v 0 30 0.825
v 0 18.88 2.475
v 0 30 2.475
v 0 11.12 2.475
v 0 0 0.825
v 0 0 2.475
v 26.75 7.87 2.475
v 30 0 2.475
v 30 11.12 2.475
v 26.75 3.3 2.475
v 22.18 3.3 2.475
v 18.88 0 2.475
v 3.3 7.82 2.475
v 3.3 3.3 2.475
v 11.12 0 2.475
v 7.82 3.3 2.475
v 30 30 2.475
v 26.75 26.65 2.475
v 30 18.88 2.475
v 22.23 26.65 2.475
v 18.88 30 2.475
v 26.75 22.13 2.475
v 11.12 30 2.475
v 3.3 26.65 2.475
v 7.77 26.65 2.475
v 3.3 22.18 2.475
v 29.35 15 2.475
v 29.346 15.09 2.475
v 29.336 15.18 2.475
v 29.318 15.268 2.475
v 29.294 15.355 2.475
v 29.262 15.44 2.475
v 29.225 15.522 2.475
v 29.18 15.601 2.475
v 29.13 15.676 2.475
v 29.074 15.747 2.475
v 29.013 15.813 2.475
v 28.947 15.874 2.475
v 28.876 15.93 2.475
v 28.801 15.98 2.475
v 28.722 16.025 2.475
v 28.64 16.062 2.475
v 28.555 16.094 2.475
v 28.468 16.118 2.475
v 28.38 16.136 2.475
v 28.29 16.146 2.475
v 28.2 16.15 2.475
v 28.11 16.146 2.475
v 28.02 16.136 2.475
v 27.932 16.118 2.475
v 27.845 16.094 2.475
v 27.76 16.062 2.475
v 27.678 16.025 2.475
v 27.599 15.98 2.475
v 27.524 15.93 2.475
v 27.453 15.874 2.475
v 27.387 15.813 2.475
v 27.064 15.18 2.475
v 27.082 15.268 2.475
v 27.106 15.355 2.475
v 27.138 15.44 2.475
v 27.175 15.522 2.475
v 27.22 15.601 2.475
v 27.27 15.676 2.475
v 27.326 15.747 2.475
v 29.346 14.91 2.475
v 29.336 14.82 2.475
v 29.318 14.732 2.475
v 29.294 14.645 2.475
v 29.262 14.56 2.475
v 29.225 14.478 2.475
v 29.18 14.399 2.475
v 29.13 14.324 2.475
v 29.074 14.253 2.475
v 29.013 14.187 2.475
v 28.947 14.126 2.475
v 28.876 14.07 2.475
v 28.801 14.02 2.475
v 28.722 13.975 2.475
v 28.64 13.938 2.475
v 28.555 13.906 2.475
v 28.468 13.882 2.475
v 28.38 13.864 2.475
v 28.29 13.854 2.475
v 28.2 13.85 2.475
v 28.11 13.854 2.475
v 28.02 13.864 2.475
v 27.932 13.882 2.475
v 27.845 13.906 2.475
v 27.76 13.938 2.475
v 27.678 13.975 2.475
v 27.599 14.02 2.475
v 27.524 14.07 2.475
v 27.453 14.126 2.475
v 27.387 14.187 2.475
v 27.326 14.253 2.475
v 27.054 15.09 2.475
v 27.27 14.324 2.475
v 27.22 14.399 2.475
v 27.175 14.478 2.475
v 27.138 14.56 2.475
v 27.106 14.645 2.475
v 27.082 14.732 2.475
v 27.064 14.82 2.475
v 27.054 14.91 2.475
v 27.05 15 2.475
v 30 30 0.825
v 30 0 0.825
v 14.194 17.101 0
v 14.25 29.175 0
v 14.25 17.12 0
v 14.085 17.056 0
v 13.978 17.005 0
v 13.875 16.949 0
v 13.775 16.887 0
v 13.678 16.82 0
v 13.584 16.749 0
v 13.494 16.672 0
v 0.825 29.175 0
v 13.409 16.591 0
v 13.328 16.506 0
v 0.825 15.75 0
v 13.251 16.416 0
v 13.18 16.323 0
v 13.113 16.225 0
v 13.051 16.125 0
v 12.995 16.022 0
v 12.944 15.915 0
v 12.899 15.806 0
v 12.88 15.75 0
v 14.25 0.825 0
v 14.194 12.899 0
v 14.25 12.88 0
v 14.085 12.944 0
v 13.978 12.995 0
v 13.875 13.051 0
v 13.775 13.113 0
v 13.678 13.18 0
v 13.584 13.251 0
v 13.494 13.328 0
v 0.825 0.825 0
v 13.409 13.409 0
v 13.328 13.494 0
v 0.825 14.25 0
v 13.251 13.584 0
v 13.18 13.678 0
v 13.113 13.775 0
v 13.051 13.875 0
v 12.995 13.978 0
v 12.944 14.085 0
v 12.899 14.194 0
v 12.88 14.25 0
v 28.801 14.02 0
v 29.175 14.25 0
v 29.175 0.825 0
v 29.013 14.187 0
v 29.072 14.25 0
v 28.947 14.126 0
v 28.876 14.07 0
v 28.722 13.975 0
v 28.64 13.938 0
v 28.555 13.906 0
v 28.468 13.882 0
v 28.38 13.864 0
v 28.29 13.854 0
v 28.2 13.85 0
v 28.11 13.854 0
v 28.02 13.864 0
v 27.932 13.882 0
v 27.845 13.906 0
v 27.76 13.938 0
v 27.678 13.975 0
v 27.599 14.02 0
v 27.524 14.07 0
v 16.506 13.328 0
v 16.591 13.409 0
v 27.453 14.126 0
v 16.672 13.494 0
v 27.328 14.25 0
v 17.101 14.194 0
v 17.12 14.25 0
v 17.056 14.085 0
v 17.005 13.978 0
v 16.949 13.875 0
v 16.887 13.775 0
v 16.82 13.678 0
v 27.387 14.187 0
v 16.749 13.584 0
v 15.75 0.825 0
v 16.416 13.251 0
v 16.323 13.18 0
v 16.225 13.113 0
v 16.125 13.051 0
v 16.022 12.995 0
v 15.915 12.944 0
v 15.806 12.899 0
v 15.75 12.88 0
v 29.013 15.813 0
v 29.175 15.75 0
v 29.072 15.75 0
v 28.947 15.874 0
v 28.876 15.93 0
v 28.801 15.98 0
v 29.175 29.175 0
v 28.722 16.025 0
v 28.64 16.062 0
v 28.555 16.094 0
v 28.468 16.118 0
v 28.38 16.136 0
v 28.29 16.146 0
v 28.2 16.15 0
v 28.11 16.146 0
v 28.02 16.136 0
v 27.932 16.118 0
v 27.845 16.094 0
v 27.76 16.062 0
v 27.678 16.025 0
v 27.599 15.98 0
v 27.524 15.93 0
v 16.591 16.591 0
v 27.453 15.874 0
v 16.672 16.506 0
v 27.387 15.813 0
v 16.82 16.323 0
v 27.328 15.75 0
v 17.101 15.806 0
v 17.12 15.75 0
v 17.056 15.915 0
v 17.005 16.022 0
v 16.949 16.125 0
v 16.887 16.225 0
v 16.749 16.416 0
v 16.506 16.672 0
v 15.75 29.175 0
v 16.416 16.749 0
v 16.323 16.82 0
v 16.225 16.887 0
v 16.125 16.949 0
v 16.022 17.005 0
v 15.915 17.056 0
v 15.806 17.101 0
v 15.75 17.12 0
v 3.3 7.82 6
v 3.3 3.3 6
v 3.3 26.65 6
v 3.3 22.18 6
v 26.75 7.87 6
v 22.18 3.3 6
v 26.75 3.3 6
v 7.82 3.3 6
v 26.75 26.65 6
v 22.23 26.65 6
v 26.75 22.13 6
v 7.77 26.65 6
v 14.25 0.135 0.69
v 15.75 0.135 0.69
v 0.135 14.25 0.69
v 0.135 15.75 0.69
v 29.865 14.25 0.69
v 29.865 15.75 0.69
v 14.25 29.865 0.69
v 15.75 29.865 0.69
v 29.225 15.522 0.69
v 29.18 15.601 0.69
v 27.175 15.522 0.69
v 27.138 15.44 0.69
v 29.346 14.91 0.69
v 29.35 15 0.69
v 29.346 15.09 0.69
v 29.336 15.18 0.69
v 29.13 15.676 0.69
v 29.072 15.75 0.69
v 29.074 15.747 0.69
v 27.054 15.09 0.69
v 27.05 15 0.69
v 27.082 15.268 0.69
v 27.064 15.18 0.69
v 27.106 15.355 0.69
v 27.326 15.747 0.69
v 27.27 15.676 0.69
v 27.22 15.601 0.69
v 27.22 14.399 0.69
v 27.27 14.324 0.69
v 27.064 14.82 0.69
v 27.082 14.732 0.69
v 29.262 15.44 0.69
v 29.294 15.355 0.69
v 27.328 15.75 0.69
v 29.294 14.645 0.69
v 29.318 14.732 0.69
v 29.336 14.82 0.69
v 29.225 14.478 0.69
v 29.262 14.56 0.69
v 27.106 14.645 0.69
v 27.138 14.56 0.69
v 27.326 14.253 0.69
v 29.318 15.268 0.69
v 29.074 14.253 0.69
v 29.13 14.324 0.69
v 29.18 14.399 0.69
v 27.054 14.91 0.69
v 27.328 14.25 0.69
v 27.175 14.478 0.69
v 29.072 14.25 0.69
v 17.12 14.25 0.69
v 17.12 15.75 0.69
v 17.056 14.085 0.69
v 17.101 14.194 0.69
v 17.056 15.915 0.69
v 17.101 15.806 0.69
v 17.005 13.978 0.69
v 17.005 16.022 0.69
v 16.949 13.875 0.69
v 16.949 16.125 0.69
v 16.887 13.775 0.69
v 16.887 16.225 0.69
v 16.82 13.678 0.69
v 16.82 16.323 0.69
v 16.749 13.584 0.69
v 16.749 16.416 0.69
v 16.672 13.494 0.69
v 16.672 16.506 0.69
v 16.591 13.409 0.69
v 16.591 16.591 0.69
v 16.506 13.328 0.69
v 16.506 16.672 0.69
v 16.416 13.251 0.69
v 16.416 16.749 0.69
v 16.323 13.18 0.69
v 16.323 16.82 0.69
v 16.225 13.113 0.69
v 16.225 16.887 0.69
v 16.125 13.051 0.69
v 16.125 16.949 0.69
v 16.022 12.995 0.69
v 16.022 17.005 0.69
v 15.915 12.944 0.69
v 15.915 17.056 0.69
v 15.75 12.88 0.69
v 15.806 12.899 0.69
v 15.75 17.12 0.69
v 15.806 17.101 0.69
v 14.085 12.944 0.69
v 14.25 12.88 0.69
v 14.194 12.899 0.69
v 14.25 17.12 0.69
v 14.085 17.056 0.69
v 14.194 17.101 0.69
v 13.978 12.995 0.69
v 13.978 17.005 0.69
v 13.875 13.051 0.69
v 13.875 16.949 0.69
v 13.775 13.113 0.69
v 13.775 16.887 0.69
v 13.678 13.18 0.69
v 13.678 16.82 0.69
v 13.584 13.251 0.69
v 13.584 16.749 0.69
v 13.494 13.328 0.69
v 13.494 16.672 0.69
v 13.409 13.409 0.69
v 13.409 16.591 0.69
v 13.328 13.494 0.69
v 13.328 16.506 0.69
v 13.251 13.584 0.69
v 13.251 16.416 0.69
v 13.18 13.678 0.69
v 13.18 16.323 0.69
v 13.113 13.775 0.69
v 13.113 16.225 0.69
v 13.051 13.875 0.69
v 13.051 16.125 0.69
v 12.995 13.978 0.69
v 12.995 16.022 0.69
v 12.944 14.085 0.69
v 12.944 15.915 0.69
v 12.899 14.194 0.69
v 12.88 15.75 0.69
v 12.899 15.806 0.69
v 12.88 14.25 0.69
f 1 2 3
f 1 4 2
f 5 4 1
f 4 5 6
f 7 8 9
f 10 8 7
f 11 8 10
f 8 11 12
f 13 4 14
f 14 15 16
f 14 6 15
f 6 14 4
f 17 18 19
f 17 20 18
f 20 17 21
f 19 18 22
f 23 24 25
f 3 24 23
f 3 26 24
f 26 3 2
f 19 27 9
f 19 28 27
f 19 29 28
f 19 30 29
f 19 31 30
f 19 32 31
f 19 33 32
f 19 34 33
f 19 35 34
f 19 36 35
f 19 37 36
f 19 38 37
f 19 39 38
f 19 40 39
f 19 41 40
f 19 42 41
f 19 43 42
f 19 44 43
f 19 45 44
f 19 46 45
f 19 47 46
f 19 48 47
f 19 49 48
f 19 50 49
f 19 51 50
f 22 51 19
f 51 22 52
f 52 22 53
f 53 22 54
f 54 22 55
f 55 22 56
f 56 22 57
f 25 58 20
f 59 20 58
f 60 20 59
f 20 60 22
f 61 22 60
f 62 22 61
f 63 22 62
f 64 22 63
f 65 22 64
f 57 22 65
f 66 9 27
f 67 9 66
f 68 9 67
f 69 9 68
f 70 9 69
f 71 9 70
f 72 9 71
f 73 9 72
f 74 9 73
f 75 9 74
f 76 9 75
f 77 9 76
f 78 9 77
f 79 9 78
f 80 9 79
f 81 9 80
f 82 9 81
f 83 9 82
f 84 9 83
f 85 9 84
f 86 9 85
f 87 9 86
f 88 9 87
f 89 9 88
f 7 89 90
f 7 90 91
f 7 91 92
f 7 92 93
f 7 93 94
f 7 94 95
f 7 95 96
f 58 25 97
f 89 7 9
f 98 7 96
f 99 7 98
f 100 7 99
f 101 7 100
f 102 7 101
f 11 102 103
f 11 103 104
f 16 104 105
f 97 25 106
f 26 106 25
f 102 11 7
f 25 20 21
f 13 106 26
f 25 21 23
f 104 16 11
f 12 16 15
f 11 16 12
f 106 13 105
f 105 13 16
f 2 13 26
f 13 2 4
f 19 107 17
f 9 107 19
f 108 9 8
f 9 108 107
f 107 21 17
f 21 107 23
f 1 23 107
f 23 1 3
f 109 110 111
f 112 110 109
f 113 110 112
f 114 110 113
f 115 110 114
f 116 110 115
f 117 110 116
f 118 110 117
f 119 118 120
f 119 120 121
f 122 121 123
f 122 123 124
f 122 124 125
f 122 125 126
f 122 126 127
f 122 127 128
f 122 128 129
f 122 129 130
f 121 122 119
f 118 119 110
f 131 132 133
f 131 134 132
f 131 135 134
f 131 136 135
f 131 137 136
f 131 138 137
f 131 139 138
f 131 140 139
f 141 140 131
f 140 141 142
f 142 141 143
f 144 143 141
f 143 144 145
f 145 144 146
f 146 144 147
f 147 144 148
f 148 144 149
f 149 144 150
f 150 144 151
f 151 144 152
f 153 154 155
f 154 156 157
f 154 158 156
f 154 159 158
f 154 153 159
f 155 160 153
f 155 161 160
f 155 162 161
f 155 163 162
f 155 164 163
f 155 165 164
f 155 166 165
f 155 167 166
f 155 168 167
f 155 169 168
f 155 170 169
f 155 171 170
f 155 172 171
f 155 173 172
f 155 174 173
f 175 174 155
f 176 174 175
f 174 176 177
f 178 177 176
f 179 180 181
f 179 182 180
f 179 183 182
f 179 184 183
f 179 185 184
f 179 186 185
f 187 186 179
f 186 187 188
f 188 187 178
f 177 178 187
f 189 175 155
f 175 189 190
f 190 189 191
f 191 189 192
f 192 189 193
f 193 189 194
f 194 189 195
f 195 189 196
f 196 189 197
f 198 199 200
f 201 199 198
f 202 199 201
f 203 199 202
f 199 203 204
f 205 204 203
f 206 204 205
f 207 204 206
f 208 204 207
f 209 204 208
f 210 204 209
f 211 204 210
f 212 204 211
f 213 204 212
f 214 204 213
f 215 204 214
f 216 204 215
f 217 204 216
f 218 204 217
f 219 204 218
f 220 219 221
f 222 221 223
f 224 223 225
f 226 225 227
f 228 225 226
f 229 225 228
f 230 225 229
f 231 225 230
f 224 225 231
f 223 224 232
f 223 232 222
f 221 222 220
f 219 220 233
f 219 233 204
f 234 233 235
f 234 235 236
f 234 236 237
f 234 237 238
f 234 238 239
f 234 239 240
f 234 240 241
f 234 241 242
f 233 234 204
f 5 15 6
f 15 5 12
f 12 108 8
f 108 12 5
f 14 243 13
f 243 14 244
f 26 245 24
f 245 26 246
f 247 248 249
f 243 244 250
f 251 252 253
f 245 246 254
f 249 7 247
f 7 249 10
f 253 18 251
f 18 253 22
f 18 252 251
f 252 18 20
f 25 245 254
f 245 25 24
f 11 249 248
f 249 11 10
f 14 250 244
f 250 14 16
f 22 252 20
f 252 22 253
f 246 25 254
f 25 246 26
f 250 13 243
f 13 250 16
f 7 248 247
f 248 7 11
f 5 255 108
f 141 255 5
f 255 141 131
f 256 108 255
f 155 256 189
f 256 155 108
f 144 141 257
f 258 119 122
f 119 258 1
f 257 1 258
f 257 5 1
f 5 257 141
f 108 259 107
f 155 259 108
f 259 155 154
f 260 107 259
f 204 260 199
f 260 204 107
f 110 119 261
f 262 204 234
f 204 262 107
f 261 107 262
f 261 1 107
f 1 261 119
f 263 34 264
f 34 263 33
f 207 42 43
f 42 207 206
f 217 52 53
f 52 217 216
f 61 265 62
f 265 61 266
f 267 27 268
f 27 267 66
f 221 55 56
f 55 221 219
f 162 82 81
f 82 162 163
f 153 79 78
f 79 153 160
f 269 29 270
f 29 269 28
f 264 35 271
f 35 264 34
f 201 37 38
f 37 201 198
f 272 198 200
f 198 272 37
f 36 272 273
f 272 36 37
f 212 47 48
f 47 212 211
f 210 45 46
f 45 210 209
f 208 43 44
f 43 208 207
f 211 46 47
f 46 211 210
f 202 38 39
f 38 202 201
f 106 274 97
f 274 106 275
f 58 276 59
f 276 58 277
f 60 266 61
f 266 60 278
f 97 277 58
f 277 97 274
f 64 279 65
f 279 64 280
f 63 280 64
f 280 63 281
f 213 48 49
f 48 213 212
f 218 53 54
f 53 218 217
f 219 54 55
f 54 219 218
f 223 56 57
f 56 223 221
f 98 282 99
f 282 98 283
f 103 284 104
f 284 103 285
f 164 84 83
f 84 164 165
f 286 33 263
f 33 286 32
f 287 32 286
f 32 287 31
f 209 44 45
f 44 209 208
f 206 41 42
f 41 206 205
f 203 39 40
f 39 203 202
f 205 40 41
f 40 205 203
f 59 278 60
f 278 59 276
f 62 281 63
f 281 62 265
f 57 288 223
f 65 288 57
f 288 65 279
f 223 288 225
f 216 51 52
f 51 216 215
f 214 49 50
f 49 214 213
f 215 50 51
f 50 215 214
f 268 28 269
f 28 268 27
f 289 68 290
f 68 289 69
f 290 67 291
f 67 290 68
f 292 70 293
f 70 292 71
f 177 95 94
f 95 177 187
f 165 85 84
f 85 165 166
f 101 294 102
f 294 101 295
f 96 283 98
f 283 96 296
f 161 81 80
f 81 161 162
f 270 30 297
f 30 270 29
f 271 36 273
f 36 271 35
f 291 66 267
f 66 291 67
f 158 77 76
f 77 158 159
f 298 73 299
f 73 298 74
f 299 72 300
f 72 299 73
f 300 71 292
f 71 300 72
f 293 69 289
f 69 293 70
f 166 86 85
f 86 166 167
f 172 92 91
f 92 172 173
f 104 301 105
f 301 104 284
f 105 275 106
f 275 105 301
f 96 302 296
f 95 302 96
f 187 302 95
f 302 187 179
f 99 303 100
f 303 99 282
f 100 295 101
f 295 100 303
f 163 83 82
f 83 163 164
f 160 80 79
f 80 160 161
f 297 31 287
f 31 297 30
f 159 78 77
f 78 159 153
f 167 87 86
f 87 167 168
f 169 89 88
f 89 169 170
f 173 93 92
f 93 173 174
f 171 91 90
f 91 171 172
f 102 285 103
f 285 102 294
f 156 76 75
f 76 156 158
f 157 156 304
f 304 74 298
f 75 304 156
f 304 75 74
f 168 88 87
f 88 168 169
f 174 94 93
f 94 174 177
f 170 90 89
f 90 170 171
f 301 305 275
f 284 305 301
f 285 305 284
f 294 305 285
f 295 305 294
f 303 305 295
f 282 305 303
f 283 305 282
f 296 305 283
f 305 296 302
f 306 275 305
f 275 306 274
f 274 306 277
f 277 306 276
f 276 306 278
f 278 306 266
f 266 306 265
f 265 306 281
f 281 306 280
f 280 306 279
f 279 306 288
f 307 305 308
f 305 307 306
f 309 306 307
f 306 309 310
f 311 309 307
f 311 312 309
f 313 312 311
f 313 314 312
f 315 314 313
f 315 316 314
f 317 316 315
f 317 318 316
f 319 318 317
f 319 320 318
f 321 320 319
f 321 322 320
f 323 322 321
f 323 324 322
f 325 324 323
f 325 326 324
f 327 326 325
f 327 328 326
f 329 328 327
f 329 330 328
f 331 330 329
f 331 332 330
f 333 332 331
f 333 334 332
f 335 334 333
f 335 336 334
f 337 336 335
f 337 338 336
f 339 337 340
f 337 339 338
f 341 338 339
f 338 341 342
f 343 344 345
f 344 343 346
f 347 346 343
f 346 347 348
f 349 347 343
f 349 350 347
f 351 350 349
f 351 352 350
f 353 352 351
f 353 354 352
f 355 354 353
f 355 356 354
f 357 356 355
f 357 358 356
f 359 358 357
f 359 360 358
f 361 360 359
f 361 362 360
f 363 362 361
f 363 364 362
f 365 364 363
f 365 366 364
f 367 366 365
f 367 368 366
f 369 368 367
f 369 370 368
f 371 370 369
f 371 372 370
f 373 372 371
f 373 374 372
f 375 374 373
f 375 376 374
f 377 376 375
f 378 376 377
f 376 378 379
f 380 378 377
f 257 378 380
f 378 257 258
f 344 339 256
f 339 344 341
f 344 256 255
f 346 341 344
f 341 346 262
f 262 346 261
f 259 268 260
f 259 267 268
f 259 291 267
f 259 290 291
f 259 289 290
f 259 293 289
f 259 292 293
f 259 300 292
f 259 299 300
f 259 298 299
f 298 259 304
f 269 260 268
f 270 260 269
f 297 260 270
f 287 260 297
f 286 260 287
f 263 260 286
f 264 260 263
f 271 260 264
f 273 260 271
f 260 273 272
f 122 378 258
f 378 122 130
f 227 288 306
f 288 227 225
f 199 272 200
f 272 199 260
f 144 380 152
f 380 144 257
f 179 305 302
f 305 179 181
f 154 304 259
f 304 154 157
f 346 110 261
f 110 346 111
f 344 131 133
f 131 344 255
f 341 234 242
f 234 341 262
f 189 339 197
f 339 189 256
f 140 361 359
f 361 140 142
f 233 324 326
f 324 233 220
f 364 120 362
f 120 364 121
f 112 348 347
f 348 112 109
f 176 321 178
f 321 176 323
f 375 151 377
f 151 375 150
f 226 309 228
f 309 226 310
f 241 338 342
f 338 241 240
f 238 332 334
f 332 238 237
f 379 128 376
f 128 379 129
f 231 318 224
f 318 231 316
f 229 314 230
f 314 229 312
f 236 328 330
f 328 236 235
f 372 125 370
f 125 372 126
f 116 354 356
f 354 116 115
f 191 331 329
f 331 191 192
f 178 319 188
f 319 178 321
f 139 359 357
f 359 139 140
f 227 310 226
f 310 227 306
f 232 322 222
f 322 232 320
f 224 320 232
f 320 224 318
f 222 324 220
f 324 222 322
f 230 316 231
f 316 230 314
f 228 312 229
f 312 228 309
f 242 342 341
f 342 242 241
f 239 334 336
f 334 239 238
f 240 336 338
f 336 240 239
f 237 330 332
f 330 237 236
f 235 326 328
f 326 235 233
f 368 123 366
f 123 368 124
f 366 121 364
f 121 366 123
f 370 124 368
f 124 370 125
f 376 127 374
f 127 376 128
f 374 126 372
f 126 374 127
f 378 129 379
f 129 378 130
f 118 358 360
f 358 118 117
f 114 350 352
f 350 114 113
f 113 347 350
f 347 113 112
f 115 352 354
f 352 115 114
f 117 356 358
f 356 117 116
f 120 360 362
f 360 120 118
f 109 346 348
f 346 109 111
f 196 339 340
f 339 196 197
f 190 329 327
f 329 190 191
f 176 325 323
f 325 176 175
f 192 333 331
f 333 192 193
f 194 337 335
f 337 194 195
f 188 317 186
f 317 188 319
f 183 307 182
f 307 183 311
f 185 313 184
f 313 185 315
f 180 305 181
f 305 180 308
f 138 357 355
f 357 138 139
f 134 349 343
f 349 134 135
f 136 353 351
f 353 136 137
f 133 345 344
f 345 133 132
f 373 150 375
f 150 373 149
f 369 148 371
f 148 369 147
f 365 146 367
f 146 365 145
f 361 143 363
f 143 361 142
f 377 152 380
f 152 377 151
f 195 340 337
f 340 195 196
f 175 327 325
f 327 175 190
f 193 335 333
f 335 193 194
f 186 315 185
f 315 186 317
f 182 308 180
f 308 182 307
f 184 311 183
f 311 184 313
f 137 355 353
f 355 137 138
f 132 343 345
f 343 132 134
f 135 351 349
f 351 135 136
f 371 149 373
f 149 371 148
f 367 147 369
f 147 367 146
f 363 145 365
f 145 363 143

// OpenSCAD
// file: settings.scad
cube_width=30;
cube_height=16;
cube_thickness=3.3;

cap_width=30;
cap_height=6;
cap_thickness=3.3;

glyph_depth=0.7;
glyph_thickness=1.5;

photo_resitor_hole_r = 3.1;
spring_contact_hole_r = 3.35;
// file: cap_1x1.scad
include <settings.scad>

module cap_1x1(width, height, thickness, holes_mask)
{
    width1=width-thickness;
    difference()
    {
        union()
        {
            cube([width, width, thickness*3/4]);
            translate([thickness,thickness,0])cube([width-2*thickness, width-2*thickness, height]);
        }
        union()
        {
            translate([width/2,width/2,0])rotate([0,0,45])translate([-width1/2,-width1/2,thickness*3/4]) cube([width1,width1,height]);
                        //corners
            translate([0,0.25*thickness,0])rotate([45,0,0]) translate([-0.5*width, -width, -0.5*height]) cube([2*width, width, 2*height]);
            translate([0.25*thickness,0,0]) rotate([0,-45,0]) translate([-width, -0.5*width, -0.5*height]) cube([width, 2*width, 2*height]);
            translate([width-0.25*thickness,0,0]) rotate([0,45,0]) translate([0, 0, -0.5*height]) cube([width, 2*width, 2*height]);
            translate([0,width-0.25*thickness,0]) rotate([-45,0,0]) translate([-0.5*width, 0, -0.5*height]) cube([2*width, width, 2*height]);
            
            if (holes_mask >= 8)
            {
                translate([width/2, thickness-1.5, -0.5]) cylinder(r=1.15, h=height*1.5, $fn=80);
            }
            if ((holes_mask%8) >= 4)
            {
                translate([width/2, width-thickness+1.5, -0.5]) cylinder(r=1.15, h=height*1.5, $fn=80);
            }
            if ((holes_mask%4)>= 2)
            {
                translate([thickness-1.5, width/2, -0.5]) cylinder(r=1.15, h=height*1.5, $fn=80);
            }
            if (holes_mask%2 >= 1)
            {
                translate([width-thickness+1.5, width/2, -0.5]) cylinder(r=1.15, h=height*1.5, $fn=80);
            }
        }
    }
}

cap_1x1(cap_width, cap_height, cap_thickness, 9);
//ring(10,1,1);
//arrow(1, 20, 3, 1);
//transistor_npn(30, 1, 1);
// main file
use <cap_1x1.scad>
include <settings.scad>

module cap_1x1_wireX(width, height, thickness)
{
    difference()
    {
        cap_1x1(width, height, thickness, 1);
        translate([0,(width-glyph_thickness)/2,-0.01]) cube([width, glyph_thickness, glyph_depth]);
        translate([(width-glyph_thickness)/2, 0, -0.01]) cube([glyph_thickness, width, glyph_depth]);
        translate([width/2, width/2, -0.01]) cylinder(h=glyph_depth, r=1.5*glyph_thickness, $fn=120);
    }
}

cap_1x1_wireX(cap_width, cap_height, cap_thickness);
